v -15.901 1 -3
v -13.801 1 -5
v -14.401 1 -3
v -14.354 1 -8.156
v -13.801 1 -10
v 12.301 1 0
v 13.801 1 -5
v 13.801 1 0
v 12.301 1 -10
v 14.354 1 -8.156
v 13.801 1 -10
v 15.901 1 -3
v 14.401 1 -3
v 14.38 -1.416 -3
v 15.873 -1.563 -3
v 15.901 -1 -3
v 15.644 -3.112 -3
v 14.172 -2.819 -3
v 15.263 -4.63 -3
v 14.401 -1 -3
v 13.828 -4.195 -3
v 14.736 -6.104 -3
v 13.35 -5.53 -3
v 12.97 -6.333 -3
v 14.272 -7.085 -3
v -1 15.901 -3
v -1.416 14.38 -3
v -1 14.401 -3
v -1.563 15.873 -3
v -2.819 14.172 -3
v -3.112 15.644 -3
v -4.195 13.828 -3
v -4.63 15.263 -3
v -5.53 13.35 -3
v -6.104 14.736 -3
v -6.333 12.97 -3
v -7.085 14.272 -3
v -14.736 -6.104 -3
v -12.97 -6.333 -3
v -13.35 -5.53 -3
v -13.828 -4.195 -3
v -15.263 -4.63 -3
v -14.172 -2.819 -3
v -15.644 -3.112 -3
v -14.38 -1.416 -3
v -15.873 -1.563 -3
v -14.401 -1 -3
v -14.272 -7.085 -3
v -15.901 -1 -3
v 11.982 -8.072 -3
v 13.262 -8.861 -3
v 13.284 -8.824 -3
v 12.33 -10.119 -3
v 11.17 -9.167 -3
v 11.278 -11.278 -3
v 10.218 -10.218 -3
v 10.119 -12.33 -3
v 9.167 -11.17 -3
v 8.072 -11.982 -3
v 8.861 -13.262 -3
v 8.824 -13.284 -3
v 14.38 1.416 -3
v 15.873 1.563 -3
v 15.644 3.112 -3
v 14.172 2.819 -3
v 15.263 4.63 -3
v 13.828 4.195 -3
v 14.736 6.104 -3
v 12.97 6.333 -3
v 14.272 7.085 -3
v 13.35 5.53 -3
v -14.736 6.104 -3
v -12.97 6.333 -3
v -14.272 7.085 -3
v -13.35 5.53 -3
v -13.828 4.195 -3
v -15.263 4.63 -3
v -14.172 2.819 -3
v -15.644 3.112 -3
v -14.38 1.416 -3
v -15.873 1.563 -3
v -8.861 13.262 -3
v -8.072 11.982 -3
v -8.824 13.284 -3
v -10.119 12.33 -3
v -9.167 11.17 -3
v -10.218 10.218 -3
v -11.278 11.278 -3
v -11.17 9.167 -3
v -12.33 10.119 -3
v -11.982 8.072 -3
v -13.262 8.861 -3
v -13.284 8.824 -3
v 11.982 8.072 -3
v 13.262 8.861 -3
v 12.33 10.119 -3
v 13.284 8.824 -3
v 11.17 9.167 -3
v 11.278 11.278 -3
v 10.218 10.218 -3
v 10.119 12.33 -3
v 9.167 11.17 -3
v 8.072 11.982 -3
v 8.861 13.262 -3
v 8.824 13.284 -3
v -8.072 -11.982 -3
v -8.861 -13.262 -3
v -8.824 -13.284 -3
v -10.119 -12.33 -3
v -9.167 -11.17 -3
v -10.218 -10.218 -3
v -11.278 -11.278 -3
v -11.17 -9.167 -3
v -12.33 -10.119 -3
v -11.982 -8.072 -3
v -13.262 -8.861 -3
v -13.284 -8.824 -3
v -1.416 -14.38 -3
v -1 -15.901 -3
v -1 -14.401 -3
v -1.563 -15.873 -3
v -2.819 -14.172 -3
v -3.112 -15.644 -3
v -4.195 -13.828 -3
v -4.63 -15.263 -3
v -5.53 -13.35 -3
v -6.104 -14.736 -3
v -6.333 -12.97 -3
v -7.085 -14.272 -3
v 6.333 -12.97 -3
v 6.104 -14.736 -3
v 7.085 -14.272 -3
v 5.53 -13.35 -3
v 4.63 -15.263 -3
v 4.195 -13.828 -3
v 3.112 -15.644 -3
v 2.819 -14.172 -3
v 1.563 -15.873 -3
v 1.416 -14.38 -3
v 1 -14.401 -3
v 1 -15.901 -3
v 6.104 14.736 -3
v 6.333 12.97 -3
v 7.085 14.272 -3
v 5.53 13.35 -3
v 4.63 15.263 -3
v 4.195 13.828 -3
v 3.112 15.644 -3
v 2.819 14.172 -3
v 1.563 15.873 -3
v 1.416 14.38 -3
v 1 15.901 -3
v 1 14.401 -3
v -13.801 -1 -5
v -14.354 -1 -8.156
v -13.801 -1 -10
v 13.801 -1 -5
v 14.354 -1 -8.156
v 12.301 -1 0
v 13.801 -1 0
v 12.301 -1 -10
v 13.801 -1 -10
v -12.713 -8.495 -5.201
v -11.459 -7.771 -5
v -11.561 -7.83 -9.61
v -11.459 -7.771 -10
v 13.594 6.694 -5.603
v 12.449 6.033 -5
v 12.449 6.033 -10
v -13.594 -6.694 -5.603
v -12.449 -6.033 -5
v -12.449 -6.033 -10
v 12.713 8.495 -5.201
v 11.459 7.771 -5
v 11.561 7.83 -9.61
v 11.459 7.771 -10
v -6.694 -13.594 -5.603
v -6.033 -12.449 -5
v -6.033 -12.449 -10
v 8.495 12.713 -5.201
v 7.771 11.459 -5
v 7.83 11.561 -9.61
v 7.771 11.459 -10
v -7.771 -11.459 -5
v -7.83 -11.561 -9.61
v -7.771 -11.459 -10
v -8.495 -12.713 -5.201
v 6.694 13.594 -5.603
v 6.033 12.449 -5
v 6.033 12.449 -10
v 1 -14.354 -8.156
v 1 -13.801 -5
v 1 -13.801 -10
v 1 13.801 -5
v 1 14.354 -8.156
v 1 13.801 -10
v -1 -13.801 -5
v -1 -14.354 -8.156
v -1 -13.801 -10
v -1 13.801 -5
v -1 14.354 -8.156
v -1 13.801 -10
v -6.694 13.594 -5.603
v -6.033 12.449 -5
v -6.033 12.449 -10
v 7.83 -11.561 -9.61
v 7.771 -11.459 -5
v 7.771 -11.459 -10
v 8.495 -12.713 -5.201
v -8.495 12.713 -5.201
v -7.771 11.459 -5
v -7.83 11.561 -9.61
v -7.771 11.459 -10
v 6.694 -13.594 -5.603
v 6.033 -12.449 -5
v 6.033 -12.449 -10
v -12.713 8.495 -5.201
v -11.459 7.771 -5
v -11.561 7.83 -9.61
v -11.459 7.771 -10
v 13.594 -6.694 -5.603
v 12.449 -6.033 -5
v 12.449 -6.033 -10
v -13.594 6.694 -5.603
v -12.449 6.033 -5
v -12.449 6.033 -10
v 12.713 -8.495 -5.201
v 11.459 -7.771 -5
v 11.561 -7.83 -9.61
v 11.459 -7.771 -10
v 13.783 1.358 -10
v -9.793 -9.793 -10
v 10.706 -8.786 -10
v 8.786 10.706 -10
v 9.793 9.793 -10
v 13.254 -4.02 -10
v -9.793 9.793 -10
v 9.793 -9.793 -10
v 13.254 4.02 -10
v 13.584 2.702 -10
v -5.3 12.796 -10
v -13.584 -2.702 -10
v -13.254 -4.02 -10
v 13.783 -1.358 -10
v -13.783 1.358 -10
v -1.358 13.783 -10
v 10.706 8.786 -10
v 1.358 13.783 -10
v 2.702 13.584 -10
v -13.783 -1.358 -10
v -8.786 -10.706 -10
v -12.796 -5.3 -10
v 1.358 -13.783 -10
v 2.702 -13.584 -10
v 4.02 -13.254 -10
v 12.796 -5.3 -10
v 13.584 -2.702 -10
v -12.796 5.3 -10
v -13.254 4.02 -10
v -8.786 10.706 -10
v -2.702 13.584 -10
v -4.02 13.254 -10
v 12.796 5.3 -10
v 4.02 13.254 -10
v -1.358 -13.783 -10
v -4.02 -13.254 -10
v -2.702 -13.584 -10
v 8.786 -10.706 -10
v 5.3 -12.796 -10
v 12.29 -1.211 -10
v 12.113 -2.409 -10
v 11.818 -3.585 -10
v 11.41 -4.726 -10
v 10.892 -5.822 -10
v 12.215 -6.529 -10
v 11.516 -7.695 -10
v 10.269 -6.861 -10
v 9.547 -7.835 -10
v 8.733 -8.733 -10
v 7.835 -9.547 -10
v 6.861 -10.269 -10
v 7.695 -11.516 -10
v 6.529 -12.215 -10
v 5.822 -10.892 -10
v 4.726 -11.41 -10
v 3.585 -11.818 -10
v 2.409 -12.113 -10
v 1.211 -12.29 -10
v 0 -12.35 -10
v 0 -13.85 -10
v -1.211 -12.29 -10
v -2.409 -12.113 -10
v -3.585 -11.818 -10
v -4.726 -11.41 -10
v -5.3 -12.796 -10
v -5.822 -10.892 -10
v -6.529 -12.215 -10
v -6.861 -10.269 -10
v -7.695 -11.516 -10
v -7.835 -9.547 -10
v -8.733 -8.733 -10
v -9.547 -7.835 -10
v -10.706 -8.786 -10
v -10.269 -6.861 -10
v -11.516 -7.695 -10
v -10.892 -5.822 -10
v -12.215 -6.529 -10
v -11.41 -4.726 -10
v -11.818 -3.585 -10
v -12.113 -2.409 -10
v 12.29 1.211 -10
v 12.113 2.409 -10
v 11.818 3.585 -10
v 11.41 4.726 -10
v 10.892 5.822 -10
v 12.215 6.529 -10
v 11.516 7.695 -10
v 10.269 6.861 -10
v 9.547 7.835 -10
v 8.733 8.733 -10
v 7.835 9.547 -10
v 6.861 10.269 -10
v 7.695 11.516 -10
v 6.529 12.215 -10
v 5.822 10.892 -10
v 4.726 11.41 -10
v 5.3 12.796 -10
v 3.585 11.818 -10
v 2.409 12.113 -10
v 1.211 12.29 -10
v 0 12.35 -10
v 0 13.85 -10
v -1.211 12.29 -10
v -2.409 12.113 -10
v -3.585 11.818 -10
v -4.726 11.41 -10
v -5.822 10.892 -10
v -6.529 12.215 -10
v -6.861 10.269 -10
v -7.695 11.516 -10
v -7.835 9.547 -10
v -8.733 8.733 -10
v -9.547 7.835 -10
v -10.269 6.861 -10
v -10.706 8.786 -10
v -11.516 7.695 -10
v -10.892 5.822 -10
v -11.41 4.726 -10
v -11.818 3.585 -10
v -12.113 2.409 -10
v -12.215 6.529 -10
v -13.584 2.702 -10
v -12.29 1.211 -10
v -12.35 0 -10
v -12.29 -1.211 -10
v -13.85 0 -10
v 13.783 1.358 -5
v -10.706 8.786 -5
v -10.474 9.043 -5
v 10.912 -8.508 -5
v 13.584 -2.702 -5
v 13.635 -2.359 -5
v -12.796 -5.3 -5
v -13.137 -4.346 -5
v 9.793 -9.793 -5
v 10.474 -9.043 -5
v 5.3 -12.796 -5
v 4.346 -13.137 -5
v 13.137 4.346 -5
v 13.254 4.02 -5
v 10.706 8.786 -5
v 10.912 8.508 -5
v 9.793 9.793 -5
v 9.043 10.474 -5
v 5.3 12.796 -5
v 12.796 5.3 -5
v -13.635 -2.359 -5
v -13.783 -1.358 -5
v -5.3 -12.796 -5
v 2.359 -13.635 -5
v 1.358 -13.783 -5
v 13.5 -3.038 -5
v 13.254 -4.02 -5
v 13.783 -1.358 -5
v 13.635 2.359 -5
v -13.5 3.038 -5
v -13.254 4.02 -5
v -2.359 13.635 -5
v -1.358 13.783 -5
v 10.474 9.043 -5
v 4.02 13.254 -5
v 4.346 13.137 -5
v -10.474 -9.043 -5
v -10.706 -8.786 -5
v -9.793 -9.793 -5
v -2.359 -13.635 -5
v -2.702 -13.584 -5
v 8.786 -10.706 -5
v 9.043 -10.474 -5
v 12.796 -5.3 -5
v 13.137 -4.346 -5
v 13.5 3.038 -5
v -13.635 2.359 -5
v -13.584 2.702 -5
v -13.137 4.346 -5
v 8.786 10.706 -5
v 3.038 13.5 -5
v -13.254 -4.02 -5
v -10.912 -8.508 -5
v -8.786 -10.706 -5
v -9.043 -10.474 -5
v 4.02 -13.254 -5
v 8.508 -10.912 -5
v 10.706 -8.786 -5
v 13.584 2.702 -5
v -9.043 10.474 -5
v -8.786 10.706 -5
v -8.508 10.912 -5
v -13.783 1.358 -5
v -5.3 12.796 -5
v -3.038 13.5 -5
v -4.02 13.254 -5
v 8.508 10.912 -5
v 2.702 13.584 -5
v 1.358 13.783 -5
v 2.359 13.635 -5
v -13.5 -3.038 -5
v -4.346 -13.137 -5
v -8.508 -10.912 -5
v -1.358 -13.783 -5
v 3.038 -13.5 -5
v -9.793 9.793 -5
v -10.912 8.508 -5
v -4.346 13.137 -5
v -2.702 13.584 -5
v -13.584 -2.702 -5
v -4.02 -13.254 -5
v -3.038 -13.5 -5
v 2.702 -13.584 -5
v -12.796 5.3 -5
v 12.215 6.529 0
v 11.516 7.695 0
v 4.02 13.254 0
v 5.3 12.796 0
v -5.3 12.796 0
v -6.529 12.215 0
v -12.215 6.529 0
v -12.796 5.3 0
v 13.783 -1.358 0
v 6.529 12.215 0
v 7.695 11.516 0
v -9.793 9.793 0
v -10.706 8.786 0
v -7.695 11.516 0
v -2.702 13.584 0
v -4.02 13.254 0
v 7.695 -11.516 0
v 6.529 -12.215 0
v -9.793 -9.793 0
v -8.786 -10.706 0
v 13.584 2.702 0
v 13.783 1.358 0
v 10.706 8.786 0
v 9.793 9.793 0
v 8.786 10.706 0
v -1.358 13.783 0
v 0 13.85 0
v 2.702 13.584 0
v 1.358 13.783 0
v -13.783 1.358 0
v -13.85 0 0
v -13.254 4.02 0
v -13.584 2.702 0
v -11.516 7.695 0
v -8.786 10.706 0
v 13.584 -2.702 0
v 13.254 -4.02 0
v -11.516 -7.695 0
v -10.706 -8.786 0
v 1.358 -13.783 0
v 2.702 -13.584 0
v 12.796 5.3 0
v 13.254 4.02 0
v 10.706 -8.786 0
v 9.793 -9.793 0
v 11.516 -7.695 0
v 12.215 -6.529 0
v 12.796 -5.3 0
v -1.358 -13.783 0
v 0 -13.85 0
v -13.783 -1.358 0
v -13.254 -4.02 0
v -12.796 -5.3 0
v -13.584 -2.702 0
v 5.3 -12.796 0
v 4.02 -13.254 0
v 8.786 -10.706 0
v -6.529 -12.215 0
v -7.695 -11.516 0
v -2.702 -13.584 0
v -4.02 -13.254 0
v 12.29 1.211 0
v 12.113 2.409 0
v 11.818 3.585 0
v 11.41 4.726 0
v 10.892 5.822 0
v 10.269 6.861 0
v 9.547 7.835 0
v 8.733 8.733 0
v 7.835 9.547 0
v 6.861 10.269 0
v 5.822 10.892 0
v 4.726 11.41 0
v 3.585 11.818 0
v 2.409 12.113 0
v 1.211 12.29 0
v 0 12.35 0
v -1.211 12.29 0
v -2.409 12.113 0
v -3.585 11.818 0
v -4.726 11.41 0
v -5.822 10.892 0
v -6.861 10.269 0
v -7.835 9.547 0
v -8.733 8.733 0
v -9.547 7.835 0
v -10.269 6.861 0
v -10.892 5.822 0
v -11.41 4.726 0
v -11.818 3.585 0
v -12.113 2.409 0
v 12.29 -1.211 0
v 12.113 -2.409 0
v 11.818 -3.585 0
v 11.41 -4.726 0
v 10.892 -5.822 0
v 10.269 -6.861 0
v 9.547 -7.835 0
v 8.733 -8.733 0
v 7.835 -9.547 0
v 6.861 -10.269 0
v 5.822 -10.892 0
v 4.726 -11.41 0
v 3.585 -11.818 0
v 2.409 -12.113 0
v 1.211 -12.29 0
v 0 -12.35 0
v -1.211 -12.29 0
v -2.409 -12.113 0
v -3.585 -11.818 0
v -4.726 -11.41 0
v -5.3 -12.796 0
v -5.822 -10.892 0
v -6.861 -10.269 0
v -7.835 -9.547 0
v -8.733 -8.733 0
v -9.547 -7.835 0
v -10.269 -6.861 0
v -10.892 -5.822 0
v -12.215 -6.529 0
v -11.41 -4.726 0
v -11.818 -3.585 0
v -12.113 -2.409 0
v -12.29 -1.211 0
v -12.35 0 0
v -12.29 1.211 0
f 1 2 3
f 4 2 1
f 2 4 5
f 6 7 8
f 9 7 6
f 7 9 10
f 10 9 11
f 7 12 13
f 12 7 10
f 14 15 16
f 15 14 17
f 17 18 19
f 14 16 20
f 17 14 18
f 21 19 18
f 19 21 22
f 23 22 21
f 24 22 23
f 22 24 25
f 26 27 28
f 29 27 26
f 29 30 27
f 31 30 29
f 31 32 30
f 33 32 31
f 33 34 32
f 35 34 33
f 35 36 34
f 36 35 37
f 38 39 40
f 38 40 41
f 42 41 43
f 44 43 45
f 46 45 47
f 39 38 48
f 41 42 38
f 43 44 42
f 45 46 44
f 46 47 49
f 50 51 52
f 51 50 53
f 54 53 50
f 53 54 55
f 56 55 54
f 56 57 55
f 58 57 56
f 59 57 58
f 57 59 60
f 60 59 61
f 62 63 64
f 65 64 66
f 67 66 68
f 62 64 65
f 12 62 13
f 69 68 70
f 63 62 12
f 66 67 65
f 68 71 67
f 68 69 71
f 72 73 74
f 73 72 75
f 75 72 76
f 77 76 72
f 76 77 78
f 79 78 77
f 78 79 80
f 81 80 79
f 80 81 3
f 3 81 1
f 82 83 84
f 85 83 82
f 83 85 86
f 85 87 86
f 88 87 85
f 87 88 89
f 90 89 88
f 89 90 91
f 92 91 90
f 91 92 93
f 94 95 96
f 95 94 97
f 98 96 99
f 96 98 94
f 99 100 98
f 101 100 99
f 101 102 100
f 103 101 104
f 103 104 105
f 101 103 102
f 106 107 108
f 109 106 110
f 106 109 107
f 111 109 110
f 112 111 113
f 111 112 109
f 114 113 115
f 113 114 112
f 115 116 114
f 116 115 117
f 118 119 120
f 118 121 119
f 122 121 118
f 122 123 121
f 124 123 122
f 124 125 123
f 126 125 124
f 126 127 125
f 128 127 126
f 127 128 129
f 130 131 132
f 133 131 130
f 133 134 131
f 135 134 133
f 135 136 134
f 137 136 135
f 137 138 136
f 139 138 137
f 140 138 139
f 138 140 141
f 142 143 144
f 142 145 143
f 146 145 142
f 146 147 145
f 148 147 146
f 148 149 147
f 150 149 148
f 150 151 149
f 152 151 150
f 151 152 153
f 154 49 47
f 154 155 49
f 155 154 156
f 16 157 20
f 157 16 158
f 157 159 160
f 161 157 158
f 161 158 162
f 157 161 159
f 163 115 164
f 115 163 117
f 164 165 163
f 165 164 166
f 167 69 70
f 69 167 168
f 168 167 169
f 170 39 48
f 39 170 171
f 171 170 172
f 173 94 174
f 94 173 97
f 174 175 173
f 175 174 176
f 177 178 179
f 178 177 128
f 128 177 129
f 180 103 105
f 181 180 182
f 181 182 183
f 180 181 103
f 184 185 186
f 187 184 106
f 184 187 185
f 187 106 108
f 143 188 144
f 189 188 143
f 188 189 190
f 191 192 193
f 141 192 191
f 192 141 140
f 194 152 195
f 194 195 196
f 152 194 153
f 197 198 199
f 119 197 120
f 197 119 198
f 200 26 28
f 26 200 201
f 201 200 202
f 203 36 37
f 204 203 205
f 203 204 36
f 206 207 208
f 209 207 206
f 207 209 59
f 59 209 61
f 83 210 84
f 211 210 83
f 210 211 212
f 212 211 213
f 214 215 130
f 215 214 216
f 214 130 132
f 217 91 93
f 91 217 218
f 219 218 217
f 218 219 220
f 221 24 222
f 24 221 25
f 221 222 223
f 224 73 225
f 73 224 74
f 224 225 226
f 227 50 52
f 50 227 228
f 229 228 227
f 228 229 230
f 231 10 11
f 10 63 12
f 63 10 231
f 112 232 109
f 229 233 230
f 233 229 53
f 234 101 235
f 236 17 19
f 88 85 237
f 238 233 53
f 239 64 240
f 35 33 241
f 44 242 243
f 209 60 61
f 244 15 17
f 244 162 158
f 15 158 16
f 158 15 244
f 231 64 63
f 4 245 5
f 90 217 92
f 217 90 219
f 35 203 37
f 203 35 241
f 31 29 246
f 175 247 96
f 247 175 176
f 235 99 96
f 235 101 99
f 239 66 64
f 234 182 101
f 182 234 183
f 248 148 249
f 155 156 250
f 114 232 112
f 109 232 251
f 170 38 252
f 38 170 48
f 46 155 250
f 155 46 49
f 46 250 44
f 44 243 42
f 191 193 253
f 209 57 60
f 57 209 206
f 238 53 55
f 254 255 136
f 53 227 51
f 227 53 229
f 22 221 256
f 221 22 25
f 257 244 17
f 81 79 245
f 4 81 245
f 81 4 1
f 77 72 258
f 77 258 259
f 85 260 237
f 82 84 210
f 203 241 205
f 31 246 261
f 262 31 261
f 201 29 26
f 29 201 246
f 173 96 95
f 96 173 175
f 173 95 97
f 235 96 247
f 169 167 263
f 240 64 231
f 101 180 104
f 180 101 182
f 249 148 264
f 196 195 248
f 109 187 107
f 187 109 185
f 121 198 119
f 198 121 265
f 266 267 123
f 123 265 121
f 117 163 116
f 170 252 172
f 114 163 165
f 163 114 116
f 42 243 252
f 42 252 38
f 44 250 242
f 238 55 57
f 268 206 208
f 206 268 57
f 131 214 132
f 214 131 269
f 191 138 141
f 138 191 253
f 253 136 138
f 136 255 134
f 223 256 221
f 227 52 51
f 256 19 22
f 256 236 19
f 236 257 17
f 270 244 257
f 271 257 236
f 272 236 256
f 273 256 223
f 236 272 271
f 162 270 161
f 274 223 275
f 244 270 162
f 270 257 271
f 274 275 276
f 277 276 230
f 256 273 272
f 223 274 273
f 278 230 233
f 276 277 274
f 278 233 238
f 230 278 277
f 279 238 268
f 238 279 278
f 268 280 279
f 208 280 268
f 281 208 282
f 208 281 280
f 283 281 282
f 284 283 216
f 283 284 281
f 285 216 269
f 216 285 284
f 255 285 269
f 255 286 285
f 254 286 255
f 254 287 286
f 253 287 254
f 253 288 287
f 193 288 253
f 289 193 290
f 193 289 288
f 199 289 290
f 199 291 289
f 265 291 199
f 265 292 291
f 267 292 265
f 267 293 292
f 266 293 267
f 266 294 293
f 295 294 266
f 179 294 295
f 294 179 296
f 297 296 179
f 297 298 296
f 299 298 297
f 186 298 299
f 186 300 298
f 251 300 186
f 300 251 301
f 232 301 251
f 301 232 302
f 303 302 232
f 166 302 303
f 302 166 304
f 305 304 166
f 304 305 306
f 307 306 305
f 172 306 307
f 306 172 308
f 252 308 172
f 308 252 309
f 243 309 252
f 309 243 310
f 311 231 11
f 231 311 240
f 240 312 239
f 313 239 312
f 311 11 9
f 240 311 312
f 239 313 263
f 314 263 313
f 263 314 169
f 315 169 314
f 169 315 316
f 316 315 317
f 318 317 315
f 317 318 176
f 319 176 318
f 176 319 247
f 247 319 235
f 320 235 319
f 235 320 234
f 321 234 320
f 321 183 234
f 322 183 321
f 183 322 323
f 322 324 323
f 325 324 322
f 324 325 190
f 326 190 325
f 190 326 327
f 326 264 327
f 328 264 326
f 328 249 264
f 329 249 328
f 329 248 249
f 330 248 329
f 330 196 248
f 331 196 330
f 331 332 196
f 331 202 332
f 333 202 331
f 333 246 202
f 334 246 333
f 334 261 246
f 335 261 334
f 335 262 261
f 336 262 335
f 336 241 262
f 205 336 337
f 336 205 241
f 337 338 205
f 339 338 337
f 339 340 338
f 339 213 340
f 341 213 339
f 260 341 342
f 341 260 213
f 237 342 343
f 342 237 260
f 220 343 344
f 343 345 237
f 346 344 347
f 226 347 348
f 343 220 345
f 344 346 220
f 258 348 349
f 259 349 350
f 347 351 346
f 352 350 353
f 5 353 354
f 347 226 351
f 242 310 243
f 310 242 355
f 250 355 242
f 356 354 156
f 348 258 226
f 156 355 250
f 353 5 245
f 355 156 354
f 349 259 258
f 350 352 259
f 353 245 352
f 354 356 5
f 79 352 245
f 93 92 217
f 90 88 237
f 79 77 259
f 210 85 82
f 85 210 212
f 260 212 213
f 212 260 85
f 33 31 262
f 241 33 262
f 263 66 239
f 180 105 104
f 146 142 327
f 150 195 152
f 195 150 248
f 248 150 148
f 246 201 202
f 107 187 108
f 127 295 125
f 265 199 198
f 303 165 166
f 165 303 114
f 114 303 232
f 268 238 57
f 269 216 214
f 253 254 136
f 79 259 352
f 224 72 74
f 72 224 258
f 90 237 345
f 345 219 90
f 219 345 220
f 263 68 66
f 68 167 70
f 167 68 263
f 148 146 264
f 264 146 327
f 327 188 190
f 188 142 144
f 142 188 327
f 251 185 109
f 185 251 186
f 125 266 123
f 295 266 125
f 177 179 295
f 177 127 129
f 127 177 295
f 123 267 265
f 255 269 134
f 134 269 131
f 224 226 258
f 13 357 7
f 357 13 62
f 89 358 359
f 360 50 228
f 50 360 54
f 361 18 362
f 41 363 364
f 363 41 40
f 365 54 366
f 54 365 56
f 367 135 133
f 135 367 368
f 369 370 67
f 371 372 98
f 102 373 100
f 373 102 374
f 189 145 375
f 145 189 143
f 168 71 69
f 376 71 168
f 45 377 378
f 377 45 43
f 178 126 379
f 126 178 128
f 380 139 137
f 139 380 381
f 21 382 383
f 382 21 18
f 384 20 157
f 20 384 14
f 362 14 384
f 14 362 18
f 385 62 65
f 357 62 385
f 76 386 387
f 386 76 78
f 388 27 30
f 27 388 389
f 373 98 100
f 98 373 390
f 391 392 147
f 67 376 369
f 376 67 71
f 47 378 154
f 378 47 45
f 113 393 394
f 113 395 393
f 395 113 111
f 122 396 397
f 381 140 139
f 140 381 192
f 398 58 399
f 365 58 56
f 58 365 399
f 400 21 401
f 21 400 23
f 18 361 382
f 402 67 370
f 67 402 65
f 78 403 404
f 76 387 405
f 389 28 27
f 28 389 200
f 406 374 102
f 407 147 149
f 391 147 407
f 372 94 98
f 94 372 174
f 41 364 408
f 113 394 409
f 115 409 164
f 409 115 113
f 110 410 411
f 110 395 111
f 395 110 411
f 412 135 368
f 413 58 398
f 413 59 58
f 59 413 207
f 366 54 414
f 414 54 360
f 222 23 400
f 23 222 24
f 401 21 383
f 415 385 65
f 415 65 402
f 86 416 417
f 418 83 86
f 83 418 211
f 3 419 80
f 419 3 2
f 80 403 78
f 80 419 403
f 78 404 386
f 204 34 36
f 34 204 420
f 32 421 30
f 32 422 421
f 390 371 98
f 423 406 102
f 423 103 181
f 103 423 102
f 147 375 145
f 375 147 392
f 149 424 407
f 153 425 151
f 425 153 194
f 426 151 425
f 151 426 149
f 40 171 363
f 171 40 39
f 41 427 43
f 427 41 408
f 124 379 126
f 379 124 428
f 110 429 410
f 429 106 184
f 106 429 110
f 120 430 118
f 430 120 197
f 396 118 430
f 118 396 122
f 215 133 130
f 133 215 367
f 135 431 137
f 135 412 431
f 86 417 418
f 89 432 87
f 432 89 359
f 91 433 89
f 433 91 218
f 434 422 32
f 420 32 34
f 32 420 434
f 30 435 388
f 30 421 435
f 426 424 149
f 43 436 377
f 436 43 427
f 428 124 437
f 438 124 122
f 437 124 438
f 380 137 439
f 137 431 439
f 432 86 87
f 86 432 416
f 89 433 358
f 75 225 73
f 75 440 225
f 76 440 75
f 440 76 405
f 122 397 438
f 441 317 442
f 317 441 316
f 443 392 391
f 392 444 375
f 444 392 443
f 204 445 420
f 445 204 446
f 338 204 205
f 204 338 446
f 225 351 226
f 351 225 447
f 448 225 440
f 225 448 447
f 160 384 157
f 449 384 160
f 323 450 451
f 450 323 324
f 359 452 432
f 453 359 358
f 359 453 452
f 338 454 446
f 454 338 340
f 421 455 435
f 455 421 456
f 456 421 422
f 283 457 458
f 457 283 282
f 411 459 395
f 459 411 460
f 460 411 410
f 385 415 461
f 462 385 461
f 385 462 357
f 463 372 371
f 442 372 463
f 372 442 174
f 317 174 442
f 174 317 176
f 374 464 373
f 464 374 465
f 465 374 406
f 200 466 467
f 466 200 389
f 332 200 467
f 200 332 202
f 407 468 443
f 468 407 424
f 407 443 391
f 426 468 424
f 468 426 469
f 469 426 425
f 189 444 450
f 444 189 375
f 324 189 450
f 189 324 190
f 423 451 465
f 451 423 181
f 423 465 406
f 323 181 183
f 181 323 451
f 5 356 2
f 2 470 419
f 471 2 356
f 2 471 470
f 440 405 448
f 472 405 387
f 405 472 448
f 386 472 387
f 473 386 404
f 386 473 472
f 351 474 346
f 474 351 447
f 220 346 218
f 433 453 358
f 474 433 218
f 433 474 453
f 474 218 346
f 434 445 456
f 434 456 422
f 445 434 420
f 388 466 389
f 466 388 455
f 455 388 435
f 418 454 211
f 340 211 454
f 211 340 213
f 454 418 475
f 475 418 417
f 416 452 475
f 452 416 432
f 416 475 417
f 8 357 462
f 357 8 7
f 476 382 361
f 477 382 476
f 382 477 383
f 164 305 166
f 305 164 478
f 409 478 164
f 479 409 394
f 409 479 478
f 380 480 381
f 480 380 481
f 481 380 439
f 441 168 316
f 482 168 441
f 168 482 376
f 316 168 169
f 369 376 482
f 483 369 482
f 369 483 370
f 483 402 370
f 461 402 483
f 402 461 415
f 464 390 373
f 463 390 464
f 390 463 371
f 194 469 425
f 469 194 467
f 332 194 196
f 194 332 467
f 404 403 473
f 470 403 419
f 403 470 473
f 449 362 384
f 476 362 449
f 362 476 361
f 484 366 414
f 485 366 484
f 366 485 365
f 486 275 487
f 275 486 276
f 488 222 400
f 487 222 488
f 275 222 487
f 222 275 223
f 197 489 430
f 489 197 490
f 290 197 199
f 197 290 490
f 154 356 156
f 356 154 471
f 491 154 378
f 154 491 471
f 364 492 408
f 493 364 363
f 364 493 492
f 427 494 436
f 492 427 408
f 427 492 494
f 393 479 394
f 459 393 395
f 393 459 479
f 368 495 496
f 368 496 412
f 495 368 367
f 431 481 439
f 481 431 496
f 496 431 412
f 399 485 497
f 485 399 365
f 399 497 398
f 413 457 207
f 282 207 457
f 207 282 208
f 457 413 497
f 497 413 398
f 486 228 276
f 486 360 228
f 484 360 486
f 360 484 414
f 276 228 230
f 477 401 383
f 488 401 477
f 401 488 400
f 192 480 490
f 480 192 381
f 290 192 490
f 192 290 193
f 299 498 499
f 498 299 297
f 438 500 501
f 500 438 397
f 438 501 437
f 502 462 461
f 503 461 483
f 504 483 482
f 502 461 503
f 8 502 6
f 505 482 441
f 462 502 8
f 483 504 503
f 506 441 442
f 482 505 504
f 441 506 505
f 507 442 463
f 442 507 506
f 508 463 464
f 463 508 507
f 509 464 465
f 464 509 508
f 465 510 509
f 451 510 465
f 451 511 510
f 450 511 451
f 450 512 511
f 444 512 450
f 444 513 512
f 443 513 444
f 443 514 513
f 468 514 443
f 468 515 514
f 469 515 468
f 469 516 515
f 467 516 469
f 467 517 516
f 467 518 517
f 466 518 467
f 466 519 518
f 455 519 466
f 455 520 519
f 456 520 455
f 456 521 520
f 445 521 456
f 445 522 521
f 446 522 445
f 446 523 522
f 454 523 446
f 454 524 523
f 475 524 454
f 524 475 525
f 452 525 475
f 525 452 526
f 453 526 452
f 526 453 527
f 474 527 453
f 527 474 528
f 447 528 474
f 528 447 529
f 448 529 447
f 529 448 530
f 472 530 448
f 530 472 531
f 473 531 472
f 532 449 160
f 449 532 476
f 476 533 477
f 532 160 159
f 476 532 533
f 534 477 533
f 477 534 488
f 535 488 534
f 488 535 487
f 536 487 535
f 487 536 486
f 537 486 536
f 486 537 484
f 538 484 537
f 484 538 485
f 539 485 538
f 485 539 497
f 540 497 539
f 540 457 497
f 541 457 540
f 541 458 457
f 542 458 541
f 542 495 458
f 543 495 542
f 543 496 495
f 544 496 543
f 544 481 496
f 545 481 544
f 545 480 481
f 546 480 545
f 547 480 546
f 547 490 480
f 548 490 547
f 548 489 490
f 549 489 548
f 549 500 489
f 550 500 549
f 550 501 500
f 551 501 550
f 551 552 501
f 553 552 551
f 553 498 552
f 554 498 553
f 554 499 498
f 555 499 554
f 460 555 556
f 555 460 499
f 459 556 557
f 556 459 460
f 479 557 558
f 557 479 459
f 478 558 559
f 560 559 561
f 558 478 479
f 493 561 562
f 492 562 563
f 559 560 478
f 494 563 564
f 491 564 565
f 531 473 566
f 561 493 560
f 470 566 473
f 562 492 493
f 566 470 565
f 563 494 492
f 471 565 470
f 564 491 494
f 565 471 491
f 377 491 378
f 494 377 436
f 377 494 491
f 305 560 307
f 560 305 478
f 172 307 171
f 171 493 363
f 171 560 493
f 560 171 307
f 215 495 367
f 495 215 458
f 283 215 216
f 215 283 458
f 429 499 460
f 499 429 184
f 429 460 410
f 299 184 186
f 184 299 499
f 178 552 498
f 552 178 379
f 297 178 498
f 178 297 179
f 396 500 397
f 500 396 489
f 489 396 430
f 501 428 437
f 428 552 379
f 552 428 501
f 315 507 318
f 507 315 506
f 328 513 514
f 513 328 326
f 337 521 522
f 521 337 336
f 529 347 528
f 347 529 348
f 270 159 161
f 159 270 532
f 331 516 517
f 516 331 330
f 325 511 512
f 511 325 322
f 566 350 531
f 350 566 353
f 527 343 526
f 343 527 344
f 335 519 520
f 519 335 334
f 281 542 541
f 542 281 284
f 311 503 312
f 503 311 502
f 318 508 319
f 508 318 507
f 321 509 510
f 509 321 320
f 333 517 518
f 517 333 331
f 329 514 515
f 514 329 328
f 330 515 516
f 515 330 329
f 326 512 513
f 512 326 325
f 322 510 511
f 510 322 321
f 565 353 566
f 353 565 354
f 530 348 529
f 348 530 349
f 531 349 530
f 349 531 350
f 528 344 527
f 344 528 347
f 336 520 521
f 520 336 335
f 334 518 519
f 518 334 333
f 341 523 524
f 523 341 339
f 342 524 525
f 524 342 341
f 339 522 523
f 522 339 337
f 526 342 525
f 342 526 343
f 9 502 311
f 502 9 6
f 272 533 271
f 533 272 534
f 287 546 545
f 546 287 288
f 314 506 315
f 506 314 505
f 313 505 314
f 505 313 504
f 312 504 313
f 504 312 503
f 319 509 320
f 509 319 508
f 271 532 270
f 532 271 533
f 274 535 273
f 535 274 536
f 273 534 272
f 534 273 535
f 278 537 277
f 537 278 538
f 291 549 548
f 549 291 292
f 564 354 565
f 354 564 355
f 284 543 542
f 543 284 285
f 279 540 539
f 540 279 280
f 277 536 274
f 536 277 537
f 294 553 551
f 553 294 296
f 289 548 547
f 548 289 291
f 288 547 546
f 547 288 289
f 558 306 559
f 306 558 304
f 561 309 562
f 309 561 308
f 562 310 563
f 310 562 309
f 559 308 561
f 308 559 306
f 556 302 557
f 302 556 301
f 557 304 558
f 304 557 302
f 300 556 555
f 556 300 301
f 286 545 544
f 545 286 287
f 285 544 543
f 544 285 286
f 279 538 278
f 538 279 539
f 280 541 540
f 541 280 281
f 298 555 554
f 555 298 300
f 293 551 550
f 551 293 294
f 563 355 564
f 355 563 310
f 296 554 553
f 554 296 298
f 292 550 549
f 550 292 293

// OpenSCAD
$fn = 64;
od = 26.7;
radius = (26.7/2)-1;
thickness = 1.5;
flange = 7;
height = 10;

// top wall maximum 2mm thick in order to push through, 
// squishy bit needs to be about 3mm but retract to 2mm

module flange(height=7, outset = 3.6) {
	difference() {
		cylinder(r1=radius+outset, r2=radius+thickness, h=height);
		
		for (r = [0:360/12:180]) {
			rotate([0, 0, r]) translate([0, 0, 5]) cube([(radius+outset)*2, 2, 10], center=true);
		}
		
		cylinder(r1=radius+outset-thickness, r2=radius, h=height);
	}
}

module washer() {
	difference() {
		union() {
			translate([0, 0, height-flange]) flange();
			
			cylinder(r=radius+thickness, h=10);
		}
		
		cylinder(r=radius, h=10);
		
		translate([radius, 0, 5]) cube([radius+3, 2, 10], center=true);
	}
}

mirror([0, 0, 1]) washer();
